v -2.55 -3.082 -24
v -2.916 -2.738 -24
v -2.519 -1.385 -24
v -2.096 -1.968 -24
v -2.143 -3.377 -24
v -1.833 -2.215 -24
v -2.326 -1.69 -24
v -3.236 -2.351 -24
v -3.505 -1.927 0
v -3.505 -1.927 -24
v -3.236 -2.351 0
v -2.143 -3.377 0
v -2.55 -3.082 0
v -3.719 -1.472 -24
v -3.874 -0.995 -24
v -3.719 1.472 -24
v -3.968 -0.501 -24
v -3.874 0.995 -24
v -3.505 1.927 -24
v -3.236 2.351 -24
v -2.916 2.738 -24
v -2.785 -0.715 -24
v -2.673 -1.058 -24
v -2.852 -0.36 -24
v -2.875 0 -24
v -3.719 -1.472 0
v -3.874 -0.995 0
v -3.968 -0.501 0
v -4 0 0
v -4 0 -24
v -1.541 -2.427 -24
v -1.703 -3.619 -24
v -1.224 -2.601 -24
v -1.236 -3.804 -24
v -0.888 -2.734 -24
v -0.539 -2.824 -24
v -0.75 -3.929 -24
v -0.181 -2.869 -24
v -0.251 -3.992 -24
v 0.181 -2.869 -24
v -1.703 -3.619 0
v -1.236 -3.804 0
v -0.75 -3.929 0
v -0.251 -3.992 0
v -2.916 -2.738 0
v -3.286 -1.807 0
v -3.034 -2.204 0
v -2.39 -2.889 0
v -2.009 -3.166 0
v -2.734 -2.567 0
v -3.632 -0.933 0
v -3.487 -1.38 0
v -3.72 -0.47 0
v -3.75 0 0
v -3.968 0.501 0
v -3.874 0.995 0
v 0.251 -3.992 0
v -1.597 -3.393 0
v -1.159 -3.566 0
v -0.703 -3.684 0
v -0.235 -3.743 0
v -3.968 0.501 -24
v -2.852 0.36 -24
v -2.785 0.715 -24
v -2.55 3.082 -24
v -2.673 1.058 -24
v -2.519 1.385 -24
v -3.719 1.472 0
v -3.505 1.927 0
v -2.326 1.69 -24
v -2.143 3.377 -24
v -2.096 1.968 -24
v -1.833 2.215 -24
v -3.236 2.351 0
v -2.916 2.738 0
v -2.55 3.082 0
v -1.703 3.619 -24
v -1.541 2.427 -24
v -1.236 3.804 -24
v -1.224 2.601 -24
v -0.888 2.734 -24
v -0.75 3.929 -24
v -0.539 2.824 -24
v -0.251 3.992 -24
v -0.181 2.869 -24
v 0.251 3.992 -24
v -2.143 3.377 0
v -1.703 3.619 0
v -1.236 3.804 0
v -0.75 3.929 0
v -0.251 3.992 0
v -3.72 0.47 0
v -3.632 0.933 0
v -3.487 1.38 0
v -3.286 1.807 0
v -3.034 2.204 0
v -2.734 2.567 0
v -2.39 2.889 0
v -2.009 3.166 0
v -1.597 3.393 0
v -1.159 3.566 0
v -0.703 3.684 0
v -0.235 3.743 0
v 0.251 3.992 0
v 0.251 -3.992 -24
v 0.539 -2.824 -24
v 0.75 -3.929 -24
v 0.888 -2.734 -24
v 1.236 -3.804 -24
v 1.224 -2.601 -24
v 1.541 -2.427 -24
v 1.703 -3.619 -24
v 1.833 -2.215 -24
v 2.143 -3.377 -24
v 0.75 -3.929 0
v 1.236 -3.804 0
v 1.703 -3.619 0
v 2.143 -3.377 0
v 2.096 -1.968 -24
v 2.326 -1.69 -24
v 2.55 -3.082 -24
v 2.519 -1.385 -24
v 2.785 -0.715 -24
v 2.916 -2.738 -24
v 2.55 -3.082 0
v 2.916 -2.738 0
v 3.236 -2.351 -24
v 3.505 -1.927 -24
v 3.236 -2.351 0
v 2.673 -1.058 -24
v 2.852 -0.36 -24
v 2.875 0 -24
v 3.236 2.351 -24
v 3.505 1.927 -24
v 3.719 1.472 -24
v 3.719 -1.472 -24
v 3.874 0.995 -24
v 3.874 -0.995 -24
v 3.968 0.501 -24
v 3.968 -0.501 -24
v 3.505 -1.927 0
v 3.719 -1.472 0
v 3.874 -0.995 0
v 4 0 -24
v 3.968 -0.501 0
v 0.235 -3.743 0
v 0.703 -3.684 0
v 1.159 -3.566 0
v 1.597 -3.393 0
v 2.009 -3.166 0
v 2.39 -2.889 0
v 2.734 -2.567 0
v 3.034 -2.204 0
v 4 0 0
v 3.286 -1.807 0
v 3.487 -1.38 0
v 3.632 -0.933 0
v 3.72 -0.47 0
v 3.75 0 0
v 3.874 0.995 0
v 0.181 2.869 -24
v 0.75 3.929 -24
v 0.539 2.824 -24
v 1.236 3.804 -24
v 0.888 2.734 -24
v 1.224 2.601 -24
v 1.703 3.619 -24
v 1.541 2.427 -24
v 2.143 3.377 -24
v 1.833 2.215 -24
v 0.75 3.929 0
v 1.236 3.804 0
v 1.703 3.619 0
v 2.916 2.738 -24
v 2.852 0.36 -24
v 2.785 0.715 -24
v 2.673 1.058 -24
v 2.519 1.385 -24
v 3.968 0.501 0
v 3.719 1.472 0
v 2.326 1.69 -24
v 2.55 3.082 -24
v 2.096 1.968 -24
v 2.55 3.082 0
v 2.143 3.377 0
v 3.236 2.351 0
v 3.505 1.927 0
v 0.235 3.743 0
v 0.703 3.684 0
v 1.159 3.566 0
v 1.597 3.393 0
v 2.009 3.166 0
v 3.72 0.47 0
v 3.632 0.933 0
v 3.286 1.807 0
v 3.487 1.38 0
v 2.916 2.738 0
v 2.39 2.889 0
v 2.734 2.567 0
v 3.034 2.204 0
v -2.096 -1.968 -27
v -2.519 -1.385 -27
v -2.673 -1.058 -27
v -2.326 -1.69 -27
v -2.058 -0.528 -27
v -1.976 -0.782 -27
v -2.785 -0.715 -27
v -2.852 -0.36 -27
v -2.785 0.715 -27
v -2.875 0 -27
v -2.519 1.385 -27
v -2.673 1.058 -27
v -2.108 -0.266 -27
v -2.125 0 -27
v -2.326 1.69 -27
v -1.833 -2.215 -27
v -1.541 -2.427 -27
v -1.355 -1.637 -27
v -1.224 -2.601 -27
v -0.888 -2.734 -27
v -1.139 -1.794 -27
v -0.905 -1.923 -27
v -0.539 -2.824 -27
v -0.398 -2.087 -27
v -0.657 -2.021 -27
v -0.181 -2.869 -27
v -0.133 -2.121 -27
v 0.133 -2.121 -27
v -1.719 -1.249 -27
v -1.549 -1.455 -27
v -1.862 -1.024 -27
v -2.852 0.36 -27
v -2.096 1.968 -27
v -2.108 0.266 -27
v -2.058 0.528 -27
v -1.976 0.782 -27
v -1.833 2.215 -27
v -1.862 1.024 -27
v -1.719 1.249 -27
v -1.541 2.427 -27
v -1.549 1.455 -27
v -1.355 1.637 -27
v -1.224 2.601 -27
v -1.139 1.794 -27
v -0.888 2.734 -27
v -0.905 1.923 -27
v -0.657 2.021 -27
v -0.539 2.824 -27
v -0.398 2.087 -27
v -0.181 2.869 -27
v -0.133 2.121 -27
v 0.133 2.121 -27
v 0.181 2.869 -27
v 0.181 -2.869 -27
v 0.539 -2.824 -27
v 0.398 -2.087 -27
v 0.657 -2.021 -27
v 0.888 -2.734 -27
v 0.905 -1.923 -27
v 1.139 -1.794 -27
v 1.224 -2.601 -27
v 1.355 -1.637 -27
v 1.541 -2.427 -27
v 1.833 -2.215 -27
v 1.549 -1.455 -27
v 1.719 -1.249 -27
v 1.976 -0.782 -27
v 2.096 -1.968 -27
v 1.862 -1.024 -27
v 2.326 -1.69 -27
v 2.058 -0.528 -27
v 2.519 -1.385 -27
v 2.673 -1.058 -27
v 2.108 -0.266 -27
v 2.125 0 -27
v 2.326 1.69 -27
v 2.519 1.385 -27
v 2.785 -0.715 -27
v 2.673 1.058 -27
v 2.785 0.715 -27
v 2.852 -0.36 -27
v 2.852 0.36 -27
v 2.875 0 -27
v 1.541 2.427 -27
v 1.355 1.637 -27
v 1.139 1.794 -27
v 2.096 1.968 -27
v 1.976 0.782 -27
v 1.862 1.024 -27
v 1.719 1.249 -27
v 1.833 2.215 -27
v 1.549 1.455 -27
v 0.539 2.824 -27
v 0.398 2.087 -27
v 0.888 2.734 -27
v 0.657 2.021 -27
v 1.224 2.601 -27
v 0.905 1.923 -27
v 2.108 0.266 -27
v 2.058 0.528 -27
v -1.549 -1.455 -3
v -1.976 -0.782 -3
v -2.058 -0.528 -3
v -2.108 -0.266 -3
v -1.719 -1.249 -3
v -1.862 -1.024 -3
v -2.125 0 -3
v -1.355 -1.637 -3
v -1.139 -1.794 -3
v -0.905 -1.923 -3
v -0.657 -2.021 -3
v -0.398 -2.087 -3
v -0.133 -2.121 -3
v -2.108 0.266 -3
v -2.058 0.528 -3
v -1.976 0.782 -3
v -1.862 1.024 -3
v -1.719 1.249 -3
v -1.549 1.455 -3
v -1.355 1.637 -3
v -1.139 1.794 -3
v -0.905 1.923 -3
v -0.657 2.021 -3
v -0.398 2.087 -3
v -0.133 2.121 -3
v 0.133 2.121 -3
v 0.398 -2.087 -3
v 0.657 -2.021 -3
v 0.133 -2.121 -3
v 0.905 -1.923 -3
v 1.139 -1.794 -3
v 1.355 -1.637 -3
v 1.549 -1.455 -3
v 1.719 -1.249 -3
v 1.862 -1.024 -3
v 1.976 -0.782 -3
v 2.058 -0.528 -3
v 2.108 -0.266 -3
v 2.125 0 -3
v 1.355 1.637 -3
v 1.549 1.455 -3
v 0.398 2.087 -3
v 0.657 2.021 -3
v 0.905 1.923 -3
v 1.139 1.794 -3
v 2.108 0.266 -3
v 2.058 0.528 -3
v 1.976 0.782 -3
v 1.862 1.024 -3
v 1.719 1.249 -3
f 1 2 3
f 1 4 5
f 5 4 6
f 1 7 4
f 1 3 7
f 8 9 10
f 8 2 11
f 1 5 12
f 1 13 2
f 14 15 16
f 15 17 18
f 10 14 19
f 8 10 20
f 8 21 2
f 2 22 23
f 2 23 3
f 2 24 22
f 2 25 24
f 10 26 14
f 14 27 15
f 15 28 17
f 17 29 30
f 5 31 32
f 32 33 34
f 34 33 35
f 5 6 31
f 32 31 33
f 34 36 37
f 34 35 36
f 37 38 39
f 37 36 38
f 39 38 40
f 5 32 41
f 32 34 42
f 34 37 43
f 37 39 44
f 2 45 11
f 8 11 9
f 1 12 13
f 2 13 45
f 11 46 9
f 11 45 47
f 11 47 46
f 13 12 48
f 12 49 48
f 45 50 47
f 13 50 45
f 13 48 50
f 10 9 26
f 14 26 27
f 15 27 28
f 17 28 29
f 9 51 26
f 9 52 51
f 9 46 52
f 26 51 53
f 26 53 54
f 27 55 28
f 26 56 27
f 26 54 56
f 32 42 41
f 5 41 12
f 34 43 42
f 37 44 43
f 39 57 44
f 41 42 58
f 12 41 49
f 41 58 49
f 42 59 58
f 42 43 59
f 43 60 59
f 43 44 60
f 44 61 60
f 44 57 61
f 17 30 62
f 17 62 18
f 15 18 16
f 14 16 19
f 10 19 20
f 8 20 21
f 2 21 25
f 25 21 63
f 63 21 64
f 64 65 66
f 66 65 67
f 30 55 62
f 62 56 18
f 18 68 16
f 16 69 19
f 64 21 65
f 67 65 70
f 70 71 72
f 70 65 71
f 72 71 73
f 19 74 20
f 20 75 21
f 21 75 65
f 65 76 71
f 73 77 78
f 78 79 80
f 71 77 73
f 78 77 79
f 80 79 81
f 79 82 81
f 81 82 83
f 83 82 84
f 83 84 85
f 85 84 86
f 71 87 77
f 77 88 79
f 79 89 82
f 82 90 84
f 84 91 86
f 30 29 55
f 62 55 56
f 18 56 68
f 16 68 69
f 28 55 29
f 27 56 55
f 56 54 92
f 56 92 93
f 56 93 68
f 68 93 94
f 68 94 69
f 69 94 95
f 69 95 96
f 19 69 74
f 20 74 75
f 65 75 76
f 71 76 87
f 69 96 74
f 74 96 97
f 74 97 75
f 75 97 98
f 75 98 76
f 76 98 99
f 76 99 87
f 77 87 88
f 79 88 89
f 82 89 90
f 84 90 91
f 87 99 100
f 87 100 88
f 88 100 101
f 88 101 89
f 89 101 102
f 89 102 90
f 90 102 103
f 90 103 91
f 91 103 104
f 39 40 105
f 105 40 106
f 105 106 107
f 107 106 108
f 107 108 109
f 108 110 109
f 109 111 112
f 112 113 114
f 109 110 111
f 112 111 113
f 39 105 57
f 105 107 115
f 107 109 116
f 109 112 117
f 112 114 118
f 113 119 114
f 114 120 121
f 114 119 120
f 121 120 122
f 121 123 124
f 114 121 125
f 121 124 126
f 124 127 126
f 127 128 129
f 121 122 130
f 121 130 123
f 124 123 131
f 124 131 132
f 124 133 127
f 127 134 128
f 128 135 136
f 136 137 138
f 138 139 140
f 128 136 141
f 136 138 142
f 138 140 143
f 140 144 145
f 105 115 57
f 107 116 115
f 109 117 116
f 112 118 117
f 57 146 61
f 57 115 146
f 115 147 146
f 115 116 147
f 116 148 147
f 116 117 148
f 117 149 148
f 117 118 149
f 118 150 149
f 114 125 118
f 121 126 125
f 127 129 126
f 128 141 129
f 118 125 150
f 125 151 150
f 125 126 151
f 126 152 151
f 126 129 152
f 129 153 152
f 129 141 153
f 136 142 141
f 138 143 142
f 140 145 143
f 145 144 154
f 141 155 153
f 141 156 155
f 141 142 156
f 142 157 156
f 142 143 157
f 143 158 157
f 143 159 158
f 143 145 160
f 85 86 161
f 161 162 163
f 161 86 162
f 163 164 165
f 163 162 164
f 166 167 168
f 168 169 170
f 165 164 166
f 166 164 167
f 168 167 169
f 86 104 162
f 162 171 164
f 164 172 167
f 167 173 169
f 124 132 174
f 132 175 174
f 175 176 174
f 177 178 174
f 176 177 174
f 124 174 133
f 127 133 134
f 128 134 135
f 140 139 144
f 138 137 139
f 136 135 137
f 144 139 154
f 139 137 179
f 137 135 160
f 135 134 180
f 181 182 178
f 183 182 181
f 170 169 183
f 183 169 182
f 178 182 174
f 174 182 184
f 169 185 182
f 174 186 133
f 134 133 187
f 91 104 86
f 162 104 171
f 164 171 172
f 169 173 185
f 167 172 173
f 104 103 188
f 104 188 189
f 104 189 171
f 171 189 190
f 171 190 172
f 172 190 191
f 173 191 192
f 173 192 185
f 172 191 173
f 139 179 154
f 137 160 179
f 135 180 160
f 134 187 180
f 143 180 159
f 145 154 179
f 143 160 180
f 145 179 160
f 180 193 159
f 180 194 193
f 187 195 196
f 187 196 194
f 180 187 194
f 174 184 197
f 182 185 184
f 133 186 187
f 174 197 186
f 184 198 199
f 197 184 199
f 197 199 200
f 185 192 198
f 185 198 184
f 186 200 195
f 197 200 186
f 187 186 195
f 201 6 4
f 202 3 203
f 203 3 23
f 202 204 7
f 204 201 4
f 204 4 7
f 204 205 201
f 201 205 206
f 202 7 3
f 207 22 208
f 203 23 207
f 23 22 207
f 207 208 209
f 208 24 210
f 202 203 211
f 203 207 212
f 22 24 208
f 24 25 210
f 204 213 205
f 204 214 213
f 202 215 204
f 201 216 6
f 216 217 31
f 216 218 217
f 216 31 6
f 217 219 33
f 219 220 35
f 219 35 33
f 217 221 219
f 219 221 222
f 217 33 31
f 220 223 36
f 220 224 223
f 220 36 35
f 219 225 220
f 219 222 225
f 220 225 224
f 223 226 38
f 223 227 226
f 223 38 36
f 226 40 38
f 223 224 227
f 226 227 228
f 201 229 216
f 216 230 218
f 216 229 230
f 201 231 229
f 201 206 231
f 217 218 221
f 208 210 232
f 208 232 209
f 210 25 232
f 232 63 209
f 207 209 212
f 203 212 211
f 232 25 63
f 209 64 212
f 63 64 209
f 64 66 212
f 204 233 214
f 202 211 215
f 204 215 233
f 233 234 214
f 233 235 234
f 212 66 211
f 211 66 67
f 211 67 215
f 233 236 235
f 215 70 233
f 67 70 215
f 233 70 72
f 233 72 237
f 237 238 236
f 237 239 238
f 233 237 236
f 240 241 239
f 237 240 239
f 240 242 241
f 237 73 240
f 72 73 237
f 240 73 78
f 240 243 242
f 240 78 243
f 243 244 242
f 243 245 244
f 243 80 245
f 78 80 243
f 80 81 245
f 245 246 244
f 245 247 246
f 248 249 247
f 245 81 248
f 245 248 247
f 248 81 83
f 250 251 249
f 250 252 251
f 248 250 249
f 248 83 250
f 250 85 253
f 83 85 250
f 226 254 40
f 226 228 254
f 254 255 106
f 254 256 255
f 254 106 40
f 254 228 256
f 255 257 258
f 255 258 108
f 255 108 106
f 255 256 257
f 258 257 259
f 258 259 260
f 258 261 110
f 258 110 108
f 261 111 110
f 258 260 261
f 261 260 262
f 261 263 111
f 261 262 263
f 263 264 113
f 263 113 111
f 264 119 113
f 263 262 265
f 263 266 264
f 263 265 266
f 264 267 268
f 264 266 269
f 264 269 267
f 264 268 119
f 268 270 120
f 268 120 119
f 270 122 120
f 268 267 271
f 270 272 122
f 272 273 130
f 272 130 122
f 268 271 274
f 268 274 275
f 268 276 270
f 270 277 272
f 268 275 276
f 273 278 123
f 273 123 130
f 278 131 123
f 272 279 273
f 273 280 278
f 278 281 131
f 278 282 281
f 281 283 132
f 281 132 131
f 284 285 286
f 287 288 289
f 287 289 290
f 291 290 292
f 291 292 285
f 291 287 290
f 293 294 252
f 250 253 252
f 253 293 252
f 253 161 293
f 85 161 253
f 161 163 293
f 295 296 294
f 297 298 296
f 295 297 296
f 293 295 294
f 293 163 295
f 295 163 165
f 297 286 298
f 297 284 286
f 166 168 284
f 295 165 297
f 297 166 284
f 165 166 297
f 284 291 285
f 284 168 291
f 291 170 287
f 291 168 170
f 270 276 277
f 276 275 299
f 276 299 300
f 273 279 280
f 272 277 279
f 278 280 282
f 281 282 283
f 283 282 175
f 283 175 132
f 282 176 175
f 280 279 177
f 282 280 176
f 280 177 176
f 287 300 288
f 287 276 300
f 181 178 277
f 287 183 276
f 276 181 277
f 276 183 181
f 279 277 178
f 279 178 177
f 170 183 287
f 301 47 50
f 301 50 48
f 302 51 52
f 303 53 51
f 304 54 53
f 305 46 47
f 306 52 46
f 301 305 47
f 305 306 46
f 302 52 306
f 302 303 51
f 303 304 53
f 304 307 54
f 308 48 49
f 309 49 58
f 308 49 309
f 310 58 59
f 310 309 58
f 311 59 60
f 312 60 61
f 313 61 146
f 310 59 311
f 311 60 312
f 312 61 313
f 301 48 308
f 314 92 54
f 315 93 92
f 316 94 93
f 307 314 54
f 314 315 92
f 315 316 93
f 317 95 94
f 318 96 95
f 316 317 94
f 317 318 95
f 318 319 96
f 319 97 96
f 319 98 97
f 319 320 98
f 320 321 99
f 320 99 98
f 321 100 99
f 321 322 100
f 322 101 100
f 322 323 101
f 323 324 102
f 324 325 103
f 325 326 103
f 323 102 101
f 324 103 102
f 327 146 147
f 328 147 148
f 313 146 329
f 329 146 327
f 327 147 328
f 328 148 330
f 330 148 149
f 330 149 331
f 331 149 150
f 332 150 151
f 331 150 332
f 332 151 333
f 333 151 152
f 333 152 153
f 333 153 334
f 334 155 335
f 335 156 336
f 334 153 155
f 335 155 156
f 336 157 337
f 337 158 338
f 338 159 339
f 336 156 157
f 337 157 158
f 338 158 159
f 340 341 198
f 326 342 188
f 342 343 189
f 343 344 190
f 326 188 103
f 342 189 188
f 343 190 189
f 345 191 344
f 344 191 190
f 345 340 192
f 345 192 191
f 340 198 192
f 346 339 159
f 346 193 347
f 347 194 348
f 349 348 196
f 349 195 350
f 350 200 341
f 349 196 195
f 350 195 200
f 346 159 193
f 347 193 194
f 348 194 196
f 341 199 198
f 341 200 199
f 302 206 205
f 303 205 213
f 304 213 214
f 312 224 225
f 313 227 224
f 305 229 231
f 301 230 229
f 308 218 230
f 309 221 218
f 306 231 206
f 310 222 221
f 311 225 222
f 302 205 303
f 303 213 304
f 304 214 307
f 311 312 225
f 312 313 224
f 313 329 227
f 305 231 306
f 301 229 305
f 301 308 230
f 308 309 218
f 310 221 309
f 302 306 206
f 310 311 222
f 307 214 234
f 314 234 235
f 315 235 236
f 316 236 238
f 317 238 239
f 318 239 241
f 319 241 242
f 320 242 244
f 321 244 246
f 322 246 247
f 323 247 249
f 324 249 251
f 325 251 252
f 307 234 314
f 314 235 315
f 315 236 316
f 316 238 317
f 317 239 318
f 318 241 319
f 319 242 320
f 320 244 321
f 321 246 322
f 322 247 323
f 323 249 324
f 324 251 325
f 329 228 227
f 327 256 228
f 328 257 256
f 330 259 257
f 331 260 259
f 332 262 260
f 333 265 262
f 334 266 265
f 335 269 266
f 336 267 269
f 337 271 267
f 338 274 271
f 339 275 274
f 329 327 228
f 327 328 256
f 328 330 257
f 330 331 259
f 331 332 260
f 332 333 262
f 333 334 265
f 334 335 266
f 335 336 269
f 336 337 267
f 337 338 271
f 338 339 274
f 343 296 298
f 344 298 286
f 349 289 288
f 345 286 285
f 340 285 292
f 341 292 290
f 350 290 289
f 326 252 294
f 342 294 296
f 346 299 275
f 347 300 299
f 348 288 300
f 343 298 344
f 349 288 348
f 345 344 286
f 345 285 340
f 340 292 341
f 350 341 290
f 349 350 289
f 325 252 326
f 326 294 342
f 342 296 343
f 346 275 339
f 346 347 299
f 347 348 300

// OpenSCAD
$fn = 50;

difference() {
	union() {
		translate(v = [0, 0, -24.0]) {
			cylinder(h = 27, r = 4.0);
		}
		#translate(v = [0, 0, -27.0]) {
			cylinder(h = 27, r = 2.875);
		}
	}
	union() {
		translate(v = [0, 0, 0]) {
			rotate(a = [0, 0, 0]) {
				difference() {
					union() {
						translate(v = [0, 0, -27.0]) {
							cylinder(h = 27, r = 2.0);
						}
						translate(v = [0, 0, -3]) {
							cylinder(h = 3, r1 = 2.125, r2 = 3.75);
						}
						translate(v = [0, 0, -27.0]) {
							cylinder(h = 27, r = 2.125);
						}
						translate(v = [0, 0, -27.0]) {
							cylinder(h = 27, r = 2.0);
						}
					}
					union();
				}
			}
		}
		#cylinder(h = 3, r = 5.0);
	}
}
